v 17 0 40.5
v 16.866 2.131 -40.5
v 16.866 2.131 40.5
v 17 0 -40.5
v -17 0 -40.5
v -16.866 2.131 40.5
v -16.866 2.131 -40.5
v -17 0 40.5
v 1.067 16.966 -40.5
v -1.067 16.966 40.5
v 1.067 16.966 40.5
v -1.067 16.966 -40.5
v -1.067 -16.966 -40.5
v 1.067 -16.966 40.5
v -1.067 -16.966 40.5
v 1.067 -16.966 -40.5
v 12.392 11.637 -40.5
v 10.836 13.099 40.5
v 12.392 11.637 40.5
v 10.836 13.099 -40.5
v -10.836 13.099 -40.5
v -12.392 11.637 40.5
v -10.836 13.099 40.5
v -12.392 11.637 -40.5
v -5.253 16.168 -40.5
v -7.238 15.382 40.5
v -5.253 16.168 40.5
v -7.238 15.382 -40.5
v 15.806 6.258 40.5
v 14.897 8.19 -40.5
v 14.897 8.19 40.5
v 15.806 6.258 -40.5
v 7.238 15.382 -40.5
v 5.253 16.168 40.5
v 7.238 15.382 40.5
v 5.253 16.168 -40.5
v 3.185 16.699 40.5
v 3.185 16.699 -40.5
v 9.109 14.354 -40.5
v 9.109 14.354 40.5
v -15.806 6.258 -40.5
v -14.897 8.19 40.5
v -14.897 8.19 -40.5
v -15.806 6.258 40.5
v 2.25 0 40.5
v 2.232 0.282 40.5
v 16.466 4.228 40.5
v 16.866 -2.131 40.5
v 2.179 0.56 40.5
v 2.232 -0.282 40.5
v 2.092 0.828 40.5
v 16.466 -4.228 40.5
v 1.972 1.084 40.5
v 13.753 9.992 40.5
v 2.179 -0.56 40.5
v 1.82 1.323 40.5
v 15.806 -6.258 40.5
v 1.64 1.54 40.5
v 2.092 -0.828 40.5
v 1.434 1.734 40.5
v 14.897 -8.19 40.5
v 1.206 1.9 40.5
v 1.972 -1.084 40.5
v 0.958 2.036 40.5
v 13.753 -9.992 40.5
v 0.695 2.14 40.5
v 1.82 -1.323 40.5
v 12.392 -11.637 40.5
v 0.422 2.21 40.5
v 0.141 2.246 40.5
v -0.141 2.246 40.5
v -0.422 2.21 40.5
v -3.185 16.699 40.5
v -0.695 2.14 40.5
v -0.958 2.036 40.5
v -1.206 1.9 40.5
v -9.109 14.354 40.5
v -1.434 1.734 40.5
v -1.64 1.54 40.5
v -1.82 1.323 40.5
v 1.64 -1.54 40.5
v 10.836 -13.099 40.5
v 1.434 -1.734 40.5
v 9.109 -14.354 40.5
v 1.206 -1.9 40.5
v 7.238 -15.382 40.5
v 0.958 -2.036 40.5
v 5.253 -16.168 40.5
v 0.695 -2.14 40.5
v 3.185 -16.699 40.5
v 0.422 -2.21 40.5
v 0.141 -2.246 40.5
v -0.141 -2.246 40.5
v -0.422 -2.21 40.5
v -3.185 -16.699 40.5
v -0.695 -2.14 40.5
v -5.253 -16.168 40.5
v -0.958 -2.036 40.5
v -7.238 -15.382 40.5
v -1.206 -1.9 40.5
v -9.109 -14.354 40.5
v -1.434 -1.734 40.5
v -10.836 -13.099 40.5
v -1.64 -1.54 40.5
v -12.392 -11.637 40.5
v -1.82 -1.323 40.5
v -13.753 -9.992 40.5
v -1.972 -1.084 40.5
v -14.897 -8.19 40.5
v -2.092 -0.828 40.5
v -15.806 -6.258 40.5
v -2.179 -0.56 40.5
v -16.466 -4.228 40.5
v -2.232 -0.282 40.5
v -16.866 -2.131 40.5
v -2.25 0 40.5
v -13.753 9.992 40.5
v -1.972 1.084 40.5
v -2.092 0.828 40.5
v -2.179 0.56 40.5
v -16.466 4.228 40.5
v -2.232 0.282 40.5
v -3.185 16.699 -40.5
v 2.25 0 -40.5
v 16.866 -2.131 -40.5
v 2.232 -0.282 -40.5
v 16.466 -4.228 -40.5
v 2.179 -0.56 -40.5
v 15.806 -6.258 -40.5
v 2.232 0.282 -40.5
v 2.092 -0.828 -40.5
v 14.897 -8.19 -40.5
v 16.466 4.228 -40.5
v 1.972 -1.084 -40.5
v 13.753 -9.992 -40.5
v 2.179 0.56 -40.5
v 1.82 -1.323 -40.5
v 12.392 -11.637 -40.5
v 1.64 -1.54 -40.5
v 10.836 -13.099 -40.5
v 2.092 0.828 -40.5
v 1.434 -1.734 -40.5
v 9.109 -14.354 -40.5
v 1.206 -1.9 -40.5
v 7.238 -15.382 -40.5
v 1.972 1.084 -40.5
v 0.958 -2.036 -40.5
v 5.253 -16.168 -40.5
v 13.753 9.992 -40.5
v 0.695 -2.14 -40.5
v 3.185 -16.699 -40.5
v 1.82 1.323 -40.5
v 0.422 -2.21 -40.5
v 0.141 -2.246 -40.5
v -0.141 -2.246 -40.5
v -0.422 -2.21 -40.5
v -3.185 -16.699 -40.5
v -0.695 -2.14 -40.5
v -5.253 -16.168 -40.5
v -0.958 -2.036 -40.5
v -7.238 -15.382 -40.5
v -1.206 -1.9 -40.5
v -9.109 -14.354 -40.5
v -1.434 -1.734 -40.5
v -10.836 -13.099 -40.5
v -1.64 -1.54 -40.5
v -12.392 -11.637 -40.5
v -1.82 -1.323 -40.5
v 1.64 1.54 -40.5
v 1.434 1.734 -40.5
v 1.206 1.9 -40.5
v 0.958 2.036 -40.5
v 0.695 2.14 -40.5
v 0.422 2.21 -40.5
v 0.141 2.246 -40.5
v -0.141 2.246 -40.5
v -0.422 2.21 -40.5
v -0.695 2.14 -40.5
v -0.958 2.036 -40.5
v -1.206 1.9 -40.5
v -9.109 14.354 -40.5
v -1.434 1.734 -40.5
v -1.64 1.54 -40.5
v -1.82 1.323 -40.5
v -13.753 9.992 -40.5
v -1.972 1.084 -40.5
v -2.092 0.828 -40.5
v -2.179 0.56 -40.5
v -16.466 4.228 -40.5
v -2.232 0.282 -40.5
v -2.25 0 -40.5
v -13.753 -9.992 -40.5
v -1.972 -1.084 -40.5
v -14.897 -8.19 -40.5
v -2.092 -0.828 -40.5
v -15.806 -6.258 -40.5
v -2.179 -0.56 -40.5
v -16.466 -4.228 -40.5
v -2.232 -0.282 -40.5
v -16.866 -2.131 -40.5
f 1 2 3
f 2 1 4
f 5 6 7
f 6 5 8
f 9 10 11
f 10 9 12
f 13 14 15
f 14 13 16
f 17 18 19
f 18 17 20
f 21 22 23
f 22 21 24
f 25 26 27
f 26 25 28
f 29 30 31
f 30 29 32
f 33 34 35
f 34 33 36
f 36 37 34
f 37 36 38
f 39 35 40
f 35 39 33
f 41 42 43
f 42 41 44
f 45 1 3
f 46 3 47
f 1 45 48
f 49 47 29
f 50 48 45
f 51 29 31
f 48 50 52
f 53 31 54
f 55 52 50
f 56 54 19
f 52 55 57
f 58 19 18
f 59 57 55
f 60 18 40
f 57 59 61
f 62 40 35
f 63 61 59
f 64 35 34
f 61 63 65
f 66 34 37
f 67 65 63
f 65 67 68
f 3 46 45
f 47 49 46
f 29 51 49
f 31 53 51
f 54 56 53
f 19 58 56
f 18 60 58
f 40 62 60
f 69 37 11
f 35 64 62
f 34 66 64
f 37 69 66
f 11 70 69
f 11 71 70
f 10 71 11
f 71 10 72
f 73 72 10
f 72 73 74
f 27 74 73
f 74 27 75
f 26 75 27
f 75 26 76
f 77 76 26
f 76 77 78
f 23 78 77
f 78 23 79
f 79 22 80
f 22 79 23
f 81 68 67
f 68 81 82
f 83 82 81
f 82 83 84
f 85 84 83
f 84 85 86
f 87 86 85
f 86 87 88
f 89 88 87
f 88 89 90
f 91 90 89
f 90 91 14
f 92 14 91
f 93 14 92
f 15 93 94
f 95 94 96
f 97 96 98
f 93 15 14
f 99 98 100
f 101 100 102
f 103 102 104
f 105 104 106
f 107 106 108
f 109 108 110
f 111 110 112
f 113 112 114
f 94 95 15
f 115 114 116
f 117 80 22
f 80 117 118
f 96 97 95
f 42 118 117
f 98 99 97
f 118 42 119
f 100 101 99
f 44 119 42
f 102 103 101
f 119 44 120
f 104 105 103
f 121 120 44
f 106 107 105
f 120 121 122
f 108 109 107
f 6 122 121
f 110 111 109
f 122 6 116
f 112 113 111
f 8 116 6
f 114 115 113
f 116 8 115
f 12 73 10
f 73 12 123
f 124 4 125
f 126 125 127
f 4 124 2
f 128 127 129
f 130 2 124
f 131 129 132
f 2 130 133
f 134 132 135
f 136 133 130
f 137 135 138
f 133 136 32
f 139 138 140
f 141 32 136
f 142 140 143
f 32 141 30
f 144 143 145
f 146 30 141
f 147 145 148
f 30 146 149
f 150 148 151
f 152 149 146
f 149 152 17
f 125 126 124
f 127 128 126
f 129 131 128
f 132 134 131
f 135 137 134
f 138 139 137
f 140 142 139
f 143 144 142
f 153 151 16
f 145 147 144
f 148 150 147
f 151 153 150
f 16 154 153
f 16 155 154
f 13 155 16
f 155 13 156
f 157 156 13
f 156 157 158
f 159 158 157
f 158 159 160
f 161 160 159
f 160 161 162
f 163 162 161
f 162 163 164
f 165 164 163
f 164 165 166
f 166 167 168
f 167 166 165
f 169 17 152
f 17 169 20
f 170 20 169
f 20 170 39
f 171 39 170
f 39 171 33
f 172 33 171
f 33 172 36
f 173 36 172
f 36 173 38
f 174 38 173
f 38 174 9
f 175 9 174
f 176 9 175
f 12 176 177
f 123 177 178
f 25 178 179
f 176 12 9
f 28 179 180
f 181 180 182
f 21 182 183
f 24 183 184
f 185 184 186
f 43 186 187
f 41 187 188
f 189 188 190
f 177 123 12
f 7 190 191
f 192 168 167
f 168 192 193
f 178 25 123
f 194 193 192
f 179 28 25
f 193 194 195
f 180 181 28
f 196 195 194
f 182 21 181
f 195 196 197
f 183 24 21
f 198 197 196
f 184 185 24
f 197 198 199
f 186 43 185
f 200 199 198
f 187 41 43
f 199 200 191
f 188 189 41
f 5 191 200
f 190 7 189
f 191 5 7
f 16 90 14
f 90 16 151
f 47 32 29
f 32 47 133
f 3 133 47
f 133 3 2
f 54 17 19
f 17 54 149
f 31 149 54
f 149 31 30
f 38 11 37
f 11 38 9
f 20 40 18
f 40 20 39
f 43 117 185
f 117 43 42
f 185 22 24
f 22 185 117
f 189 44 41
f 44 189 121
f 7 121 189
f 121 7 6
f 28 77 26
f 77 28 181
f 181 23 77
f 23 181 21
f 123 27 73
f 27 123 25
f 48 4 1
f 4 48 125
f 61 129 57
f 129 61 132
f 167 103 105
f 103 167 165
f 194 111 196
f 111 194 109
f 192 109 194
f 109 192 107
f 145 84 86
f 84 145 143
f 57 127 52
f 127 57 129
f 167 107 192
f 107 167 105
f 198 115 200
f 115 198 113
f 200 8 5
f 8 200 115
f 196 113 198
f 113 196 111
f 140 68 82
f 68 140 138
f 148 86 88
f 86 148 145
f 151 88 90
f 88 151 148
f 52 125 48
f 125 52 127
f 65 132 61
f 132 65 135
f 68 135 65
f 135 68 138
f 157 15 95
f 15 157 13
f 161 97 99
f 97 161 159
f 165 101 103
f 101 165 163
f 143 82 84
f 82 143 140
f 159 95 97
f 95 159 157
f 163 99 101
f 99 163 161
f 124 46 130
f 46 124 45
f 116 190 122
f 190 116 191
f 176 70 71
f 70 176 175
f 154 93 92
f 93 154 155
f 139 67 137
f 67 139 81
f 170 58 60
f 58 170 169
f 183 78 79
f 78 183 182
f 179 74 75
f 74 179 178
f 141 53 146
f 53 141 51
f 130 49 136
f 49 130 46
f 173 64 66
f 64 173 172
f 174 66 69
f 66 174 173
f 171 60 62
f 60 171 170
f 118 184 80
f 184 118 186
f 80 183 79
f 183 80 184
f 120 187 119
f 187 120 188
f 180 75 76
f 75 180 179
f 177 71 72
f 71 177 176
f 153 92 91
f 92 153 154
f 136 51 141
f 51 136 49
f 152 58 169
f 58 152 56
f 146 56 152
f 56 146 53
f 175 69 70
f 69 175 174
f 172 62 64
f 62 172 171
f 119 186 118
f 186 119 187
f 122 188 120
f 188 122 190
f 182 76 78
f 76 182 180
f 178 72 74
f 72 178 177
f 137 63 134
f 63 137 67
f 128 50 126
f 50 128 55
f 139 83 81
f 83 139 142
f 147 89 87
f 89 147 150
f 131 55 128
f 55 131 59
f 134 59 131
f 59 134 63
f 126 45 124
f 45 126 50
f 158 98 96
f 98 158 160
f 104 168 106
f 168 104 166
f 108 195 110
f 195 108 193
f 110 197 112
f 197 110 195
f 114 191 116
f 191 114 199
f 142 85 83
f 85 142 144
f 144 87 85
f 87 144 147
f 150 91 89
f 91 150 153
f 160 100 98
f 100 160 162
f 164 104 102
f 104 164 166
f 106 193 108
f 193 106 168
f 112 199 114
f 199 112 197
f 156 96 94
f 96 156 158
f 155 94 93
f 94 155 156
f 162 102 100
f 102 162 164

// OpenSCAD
$fn = 50;


difference() {
	union() {
		translate(v = [0, 0, -40.5000000000]) {
			cylinder(h = 81, r = 17.0000000000);
		}
	}
	union() {
		translate(v = [0, 0, -100.0000000000]) {
			cylinder(h = 200, r = 2.2500000000);
		}
	}
}
